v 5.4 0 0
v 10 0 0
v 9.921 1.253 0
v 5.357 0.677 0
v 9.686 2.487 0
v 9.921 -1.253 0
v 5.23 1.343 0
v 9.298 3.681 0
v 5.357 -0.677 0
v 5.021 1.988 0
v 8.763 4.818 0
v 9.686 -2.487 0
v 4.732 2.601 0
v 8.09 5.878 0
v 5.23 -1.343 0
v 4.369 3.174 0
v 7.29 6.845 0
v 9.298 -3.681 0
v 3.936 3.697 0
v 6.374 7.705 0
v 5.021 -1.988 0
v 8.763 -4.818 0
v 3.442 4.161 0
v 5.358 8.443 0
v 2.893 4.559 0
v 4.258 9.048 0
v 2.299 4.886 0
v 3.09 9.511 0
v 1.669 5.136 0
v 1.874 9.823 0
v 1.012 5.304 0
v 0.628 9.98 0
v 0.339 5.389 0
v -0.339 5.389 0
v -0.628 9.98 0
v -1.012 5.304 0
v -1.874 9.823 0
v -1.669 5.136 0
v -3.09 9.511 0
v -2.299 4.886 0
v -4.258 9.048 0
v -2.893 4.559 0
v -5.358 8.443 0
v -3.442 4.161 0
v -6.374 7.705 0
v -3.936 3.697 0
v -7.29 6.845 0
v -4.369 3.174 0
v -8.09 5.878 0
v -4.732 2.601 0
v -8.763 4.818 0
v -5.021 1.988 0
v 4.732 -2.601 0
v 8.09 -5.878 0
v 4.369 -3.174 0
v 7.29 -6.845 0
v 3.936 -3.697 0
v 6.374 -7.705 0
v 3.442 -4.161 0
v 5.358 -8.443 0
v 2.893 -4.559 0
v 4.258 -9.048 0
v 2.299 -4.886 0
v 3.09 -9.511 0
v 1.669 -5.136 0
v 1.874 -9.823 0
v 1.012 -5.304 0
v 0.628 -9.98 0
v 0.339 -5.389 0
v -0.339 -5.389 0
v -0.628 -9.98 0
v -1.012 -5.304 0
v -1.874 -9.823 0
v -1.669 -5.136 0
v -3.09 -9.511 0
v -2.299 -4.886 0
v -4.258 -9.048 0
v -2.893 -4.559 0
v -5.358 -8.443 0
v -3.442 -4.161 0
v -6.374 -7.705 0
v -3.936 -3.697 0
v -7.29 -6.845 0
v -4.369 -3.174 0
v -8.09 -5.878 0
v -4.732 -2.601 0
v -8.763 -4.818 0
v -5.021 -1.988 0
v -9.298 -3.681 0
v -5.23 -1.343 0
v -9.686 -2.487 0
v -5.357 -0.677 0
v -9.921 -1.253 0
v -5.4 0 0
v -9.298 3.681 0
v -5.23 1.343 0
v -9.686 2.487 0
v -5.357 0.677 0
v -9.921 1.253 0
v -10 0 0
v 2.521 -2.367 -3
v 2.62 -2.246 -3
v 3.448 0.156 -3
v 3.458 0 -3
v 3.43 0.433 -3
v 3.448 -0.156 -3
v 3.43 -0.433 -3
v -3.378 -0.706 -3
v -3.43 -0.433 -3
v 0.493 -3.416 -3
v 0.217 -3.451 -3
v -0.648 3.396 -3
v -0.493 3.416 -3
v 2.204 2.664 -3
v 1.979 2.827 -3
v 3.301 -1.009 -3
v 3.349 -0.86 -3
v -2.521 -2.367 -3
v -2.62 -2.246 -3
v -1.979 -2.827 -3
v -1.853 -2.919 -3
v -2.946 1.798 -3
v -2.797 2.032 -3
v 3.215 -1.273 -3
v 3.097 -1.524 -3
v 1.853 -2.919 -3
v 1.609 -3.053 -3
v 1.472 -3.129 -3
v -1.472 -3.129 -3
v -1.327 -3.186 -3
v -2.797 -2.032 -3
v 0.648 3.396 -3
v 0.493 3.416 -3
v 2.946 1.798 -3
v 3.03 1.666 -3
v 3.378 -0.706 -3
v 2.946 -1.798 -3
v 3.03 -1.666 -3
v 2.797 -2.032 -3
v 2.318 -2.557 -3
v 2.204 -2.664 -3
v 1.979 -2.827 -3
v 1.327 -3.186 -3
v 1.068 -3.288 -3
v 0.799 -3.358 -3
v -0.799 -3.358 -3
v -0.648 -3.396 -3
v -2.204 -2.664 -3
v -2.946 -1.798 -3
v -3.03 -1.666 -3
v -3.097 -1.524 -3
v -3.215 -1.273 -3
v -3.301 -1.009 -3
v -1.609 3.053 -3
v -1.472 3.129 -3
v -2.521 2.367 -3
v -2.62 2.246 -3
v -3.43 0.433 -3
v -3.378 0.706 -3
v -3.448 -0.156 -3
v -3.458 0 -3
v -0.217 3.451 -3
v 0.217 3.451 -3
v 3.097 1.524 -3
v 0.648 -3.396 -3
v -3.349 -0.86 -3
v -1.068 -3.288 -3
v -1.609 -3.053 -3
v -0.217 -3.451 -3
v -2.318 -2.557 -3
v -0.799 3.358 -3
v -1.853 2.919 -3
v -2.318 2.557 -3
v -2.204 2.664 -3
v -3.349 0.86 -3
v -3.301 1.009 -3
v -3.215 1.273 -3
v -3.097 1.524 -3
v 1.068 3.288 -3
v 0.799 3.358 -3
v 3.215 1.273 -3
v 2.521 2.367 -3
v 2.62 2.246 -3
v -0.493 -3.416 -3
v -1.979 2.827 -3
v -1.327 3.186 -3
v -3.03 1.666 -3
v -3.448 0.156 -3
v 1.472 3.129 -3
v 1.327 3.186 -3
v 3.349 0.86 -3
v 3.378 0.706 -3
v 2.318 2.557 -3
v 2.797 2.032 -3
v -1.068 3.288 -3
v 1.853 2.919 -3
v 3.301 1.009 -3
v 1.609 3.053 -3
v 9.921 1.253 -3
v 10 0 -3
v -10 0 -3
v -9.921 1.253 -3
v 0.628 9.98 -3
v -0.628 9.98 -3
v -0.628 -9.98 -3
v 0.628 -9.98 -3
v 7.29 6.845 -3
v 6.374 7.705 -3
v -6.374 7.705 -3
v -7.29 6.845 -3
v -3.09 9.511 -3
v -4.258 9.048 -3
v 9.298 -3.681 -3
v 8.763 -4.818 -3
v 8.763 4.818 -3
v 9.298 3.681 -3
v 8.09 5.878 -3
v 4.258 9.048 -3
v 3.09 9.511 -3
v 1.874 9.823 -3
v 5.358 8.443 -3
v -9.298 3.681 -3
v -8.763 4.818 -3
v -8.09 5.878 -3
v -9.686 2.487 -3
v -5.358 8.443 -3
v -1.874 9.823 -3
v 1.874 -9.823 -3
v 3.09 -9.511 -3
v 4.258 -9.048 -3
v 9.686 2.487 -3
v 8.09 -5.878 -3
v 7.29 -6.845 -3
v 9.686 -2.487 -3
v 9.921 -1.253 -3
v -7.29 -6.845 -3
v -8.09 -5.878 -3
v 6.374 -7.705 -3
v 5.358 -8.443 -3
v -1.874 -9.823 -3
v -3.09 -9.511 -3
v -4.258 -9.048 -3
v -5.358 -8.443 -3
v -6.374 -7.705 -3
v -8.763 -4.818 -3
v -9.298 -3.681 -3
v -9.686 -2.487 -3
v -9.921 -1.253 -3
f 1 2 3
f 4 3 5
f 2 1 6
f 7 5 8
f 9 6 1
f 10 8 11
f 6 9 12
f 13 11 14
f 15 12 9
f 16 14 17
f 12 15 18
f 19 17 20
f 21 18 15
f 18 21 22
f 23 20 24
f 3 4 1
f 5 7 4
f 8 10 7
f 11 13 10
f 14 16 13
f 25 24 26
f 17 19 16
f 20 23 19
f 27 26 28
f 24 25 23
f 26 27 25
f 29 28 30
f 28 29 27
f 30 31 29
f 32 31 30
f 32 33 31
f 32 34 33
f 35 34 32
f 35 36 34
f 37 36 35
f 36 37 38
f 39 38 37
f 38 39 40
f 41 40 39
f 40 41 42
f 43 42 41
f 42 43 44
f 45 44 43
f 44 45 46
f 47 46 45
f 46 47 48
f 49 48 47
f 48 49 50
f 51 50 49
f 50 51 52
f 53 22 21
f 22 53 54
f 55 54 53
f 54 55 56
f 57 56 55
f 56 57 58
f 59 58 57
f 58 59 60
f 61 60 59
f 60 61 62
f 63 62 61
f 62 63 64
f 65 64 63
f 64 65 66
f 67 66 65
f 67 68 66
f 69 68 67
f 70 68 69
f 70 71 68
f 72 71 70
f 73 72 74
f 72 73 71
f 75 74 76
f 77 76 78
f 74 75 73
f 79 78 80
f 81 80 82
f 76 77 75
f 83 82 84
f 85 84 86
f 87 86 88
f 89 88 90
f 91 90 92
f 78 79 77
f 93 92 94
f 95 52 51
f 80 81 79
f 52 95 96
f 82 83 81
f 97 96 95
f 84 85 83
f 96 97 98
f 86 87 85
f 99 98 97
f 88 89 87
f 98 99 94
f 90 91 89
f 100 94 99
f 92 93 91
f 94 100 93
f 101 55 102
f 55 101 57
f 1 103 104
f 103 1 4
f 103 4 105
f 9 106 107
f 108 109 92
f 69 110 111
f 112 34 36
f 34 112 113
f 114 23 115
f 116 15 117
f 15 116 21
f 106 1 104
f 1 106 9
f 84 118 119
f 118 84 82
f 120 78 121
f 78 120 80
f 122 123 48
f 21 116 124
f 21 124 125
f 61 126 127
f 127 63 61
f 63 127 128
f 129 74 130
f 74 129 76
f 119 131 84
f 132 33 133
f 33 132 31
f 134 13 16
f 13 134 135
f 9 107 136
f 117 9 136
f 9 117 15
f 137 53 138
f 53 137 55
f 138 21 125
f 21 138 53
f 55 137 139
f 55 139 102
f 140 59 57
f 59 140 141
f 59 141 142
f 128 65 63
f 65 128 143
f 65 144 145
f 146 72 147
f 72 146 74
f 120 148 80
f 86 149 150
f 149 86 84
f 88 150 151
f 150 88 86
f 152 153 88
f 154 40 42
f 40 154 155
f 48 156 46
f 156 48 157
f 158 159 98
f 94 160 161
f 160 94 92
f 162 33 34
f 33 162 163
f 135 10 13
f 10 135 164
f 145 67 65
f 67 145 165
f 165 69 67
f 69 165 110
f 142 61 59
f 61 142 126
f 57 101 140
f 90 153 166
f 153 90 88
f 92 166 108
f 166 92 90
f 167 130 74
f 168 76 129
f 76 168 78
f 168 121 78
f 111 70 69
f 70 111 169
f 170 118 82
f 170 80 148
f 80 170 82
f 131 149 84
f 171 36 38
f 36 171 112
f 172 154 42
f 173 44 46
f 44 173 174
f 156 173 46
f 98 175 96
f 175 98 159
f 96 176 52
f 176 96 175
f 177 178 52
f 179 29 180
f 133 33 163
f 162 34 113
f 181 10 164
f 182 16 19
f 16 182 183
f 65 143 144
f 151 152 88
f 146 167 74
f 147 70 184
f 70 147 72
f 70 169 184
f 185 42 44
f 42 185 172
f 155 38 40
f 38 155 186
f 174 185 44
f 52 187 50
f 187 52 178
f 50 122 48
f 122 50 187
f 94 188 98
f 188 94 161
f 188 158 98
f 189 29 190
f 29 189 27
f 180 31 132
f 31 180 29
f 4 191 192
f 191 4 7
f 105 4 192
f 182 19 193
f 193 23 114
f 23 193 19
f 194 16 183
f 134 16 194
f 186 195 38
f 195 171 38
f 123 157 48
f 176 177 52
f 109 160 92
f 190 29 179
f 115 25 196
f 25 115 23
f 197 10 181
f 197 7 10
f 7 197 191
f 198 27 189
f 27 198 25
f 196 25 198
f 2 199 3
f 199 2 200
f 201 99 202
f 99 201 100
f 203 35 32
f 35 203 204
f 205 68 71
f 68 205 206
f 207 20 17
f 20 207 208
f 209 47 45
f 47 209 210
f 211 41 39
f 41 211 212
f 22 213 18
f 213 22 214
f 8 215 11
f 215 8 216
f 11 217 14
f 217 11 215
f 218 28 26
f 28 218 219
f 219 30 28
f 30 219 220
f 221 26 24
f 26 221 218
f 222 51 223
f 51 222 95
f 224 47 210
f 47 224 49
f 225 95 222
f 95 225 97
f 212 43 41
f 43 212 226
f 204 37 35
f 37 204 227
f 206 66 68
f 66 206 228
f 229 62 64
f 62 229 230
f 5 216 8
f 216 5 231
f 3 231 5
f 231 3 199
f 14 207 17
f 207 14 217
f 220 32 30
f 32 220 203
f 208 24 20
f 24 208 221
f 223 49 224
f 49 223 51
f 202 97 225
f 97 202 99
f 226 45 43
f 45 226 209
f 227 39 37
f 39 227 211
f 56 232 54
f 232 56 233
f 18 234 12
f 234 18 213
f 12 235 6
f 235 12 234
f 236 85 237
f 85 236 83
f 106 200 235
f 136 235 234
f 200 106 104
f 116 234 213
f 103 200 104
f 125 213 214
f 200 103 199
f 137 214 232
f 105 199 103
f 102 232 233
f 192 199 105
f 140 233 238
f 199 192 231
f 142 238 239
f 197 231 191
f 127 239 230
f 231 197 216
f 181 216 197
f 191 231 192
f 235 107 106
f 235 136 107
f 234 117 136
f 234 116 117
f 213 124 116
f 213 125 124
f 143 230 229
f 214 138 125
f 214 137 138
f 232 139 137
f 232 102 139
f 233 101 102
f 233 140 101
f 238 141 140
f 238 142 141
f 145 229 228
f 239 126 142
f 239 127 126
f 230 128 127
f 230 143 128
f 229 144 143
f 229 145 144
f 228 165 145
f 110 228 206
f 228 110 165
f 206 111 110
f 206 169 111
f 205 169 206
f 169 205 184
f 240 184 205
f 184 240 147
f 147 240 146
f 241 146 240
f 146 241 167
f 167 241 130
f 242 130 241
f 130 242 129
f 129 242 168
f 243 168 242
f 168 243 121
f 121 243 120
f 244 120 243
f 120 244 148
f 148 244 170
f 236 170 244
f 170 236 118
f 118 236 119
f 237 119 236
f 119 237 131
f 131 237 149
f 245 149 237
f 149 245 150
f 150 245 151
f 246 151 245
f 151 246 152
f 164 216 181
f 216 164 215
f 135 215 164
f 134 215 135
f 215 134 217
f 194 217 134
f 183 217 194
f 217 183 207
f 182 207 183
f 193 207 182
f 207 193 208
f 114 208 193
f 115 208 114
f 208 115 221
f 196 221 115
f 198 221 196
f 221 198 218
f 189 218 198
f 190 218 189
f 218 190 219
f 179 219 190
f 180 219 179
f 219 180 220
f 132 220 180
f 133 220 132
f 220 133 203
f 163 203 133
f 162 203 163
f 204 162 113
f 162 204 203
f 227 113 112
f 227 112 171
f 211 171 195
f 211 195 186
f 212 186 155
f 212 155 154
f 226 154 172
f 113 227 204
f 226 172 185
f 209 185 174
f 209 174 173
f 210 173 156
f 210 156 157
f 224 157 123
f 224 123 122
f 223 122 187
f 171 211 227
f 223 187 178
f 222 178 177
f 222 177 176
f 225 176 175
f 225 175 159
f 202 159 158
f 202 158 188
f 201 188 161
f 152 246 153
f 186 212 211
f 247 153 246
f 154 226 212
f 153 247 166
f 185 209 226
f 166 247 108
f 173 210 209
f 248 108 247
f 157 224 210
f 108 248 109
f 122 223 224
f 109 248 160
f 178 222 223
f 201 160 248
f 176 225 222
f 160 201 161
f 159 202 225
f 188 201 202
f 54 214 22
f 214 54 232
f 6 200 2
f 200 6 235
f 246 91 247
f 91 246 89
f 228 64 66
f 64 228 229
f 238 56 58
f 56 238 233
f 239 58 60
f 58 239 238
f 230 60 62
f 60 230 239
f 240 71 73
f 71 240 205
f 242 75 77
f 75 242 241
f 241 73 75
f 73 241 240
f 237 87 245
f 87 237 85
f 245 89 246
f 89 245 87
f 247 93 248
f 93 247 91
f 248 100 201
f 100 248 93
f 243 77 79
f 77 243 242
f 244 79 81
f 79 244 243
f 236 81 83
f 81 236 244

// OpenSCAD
$fn = 50;


difference() {
	union() {
		translate(v = [0, 0, -3.0000000000]) {
			cylinder(h = 3, r = 10.0000000000);
		}
		cylinder(h = 0, r = 20.0000000000);
	}
	union() {
		translate(v = [0, 0, 0]) {
			rotate(a = [0, 0, 0]) {
				difference() {
					union() {
						#translate(v = [0, 0, -3.0000000000]) {
							cylinder(h = 3, r = 2.6000000000);
						}
						#translate(v = [0, 0, -3.9000000000]) {
							cylinder(h = 3.9000000000, r1 = 2.8750000000, r2 = 5.4000000000);
						}
						#translate(v = [0, 0, -3.0000000000]) {
							cylinder(h = 3, r = 2.8750000000);
						}
						#translate(v = [0, 0, -3.0000000000]) {
							cylinder(h = 3, r = 2.6000000000);
						}
					}
					union();
				}
			}
		}
	}
}
